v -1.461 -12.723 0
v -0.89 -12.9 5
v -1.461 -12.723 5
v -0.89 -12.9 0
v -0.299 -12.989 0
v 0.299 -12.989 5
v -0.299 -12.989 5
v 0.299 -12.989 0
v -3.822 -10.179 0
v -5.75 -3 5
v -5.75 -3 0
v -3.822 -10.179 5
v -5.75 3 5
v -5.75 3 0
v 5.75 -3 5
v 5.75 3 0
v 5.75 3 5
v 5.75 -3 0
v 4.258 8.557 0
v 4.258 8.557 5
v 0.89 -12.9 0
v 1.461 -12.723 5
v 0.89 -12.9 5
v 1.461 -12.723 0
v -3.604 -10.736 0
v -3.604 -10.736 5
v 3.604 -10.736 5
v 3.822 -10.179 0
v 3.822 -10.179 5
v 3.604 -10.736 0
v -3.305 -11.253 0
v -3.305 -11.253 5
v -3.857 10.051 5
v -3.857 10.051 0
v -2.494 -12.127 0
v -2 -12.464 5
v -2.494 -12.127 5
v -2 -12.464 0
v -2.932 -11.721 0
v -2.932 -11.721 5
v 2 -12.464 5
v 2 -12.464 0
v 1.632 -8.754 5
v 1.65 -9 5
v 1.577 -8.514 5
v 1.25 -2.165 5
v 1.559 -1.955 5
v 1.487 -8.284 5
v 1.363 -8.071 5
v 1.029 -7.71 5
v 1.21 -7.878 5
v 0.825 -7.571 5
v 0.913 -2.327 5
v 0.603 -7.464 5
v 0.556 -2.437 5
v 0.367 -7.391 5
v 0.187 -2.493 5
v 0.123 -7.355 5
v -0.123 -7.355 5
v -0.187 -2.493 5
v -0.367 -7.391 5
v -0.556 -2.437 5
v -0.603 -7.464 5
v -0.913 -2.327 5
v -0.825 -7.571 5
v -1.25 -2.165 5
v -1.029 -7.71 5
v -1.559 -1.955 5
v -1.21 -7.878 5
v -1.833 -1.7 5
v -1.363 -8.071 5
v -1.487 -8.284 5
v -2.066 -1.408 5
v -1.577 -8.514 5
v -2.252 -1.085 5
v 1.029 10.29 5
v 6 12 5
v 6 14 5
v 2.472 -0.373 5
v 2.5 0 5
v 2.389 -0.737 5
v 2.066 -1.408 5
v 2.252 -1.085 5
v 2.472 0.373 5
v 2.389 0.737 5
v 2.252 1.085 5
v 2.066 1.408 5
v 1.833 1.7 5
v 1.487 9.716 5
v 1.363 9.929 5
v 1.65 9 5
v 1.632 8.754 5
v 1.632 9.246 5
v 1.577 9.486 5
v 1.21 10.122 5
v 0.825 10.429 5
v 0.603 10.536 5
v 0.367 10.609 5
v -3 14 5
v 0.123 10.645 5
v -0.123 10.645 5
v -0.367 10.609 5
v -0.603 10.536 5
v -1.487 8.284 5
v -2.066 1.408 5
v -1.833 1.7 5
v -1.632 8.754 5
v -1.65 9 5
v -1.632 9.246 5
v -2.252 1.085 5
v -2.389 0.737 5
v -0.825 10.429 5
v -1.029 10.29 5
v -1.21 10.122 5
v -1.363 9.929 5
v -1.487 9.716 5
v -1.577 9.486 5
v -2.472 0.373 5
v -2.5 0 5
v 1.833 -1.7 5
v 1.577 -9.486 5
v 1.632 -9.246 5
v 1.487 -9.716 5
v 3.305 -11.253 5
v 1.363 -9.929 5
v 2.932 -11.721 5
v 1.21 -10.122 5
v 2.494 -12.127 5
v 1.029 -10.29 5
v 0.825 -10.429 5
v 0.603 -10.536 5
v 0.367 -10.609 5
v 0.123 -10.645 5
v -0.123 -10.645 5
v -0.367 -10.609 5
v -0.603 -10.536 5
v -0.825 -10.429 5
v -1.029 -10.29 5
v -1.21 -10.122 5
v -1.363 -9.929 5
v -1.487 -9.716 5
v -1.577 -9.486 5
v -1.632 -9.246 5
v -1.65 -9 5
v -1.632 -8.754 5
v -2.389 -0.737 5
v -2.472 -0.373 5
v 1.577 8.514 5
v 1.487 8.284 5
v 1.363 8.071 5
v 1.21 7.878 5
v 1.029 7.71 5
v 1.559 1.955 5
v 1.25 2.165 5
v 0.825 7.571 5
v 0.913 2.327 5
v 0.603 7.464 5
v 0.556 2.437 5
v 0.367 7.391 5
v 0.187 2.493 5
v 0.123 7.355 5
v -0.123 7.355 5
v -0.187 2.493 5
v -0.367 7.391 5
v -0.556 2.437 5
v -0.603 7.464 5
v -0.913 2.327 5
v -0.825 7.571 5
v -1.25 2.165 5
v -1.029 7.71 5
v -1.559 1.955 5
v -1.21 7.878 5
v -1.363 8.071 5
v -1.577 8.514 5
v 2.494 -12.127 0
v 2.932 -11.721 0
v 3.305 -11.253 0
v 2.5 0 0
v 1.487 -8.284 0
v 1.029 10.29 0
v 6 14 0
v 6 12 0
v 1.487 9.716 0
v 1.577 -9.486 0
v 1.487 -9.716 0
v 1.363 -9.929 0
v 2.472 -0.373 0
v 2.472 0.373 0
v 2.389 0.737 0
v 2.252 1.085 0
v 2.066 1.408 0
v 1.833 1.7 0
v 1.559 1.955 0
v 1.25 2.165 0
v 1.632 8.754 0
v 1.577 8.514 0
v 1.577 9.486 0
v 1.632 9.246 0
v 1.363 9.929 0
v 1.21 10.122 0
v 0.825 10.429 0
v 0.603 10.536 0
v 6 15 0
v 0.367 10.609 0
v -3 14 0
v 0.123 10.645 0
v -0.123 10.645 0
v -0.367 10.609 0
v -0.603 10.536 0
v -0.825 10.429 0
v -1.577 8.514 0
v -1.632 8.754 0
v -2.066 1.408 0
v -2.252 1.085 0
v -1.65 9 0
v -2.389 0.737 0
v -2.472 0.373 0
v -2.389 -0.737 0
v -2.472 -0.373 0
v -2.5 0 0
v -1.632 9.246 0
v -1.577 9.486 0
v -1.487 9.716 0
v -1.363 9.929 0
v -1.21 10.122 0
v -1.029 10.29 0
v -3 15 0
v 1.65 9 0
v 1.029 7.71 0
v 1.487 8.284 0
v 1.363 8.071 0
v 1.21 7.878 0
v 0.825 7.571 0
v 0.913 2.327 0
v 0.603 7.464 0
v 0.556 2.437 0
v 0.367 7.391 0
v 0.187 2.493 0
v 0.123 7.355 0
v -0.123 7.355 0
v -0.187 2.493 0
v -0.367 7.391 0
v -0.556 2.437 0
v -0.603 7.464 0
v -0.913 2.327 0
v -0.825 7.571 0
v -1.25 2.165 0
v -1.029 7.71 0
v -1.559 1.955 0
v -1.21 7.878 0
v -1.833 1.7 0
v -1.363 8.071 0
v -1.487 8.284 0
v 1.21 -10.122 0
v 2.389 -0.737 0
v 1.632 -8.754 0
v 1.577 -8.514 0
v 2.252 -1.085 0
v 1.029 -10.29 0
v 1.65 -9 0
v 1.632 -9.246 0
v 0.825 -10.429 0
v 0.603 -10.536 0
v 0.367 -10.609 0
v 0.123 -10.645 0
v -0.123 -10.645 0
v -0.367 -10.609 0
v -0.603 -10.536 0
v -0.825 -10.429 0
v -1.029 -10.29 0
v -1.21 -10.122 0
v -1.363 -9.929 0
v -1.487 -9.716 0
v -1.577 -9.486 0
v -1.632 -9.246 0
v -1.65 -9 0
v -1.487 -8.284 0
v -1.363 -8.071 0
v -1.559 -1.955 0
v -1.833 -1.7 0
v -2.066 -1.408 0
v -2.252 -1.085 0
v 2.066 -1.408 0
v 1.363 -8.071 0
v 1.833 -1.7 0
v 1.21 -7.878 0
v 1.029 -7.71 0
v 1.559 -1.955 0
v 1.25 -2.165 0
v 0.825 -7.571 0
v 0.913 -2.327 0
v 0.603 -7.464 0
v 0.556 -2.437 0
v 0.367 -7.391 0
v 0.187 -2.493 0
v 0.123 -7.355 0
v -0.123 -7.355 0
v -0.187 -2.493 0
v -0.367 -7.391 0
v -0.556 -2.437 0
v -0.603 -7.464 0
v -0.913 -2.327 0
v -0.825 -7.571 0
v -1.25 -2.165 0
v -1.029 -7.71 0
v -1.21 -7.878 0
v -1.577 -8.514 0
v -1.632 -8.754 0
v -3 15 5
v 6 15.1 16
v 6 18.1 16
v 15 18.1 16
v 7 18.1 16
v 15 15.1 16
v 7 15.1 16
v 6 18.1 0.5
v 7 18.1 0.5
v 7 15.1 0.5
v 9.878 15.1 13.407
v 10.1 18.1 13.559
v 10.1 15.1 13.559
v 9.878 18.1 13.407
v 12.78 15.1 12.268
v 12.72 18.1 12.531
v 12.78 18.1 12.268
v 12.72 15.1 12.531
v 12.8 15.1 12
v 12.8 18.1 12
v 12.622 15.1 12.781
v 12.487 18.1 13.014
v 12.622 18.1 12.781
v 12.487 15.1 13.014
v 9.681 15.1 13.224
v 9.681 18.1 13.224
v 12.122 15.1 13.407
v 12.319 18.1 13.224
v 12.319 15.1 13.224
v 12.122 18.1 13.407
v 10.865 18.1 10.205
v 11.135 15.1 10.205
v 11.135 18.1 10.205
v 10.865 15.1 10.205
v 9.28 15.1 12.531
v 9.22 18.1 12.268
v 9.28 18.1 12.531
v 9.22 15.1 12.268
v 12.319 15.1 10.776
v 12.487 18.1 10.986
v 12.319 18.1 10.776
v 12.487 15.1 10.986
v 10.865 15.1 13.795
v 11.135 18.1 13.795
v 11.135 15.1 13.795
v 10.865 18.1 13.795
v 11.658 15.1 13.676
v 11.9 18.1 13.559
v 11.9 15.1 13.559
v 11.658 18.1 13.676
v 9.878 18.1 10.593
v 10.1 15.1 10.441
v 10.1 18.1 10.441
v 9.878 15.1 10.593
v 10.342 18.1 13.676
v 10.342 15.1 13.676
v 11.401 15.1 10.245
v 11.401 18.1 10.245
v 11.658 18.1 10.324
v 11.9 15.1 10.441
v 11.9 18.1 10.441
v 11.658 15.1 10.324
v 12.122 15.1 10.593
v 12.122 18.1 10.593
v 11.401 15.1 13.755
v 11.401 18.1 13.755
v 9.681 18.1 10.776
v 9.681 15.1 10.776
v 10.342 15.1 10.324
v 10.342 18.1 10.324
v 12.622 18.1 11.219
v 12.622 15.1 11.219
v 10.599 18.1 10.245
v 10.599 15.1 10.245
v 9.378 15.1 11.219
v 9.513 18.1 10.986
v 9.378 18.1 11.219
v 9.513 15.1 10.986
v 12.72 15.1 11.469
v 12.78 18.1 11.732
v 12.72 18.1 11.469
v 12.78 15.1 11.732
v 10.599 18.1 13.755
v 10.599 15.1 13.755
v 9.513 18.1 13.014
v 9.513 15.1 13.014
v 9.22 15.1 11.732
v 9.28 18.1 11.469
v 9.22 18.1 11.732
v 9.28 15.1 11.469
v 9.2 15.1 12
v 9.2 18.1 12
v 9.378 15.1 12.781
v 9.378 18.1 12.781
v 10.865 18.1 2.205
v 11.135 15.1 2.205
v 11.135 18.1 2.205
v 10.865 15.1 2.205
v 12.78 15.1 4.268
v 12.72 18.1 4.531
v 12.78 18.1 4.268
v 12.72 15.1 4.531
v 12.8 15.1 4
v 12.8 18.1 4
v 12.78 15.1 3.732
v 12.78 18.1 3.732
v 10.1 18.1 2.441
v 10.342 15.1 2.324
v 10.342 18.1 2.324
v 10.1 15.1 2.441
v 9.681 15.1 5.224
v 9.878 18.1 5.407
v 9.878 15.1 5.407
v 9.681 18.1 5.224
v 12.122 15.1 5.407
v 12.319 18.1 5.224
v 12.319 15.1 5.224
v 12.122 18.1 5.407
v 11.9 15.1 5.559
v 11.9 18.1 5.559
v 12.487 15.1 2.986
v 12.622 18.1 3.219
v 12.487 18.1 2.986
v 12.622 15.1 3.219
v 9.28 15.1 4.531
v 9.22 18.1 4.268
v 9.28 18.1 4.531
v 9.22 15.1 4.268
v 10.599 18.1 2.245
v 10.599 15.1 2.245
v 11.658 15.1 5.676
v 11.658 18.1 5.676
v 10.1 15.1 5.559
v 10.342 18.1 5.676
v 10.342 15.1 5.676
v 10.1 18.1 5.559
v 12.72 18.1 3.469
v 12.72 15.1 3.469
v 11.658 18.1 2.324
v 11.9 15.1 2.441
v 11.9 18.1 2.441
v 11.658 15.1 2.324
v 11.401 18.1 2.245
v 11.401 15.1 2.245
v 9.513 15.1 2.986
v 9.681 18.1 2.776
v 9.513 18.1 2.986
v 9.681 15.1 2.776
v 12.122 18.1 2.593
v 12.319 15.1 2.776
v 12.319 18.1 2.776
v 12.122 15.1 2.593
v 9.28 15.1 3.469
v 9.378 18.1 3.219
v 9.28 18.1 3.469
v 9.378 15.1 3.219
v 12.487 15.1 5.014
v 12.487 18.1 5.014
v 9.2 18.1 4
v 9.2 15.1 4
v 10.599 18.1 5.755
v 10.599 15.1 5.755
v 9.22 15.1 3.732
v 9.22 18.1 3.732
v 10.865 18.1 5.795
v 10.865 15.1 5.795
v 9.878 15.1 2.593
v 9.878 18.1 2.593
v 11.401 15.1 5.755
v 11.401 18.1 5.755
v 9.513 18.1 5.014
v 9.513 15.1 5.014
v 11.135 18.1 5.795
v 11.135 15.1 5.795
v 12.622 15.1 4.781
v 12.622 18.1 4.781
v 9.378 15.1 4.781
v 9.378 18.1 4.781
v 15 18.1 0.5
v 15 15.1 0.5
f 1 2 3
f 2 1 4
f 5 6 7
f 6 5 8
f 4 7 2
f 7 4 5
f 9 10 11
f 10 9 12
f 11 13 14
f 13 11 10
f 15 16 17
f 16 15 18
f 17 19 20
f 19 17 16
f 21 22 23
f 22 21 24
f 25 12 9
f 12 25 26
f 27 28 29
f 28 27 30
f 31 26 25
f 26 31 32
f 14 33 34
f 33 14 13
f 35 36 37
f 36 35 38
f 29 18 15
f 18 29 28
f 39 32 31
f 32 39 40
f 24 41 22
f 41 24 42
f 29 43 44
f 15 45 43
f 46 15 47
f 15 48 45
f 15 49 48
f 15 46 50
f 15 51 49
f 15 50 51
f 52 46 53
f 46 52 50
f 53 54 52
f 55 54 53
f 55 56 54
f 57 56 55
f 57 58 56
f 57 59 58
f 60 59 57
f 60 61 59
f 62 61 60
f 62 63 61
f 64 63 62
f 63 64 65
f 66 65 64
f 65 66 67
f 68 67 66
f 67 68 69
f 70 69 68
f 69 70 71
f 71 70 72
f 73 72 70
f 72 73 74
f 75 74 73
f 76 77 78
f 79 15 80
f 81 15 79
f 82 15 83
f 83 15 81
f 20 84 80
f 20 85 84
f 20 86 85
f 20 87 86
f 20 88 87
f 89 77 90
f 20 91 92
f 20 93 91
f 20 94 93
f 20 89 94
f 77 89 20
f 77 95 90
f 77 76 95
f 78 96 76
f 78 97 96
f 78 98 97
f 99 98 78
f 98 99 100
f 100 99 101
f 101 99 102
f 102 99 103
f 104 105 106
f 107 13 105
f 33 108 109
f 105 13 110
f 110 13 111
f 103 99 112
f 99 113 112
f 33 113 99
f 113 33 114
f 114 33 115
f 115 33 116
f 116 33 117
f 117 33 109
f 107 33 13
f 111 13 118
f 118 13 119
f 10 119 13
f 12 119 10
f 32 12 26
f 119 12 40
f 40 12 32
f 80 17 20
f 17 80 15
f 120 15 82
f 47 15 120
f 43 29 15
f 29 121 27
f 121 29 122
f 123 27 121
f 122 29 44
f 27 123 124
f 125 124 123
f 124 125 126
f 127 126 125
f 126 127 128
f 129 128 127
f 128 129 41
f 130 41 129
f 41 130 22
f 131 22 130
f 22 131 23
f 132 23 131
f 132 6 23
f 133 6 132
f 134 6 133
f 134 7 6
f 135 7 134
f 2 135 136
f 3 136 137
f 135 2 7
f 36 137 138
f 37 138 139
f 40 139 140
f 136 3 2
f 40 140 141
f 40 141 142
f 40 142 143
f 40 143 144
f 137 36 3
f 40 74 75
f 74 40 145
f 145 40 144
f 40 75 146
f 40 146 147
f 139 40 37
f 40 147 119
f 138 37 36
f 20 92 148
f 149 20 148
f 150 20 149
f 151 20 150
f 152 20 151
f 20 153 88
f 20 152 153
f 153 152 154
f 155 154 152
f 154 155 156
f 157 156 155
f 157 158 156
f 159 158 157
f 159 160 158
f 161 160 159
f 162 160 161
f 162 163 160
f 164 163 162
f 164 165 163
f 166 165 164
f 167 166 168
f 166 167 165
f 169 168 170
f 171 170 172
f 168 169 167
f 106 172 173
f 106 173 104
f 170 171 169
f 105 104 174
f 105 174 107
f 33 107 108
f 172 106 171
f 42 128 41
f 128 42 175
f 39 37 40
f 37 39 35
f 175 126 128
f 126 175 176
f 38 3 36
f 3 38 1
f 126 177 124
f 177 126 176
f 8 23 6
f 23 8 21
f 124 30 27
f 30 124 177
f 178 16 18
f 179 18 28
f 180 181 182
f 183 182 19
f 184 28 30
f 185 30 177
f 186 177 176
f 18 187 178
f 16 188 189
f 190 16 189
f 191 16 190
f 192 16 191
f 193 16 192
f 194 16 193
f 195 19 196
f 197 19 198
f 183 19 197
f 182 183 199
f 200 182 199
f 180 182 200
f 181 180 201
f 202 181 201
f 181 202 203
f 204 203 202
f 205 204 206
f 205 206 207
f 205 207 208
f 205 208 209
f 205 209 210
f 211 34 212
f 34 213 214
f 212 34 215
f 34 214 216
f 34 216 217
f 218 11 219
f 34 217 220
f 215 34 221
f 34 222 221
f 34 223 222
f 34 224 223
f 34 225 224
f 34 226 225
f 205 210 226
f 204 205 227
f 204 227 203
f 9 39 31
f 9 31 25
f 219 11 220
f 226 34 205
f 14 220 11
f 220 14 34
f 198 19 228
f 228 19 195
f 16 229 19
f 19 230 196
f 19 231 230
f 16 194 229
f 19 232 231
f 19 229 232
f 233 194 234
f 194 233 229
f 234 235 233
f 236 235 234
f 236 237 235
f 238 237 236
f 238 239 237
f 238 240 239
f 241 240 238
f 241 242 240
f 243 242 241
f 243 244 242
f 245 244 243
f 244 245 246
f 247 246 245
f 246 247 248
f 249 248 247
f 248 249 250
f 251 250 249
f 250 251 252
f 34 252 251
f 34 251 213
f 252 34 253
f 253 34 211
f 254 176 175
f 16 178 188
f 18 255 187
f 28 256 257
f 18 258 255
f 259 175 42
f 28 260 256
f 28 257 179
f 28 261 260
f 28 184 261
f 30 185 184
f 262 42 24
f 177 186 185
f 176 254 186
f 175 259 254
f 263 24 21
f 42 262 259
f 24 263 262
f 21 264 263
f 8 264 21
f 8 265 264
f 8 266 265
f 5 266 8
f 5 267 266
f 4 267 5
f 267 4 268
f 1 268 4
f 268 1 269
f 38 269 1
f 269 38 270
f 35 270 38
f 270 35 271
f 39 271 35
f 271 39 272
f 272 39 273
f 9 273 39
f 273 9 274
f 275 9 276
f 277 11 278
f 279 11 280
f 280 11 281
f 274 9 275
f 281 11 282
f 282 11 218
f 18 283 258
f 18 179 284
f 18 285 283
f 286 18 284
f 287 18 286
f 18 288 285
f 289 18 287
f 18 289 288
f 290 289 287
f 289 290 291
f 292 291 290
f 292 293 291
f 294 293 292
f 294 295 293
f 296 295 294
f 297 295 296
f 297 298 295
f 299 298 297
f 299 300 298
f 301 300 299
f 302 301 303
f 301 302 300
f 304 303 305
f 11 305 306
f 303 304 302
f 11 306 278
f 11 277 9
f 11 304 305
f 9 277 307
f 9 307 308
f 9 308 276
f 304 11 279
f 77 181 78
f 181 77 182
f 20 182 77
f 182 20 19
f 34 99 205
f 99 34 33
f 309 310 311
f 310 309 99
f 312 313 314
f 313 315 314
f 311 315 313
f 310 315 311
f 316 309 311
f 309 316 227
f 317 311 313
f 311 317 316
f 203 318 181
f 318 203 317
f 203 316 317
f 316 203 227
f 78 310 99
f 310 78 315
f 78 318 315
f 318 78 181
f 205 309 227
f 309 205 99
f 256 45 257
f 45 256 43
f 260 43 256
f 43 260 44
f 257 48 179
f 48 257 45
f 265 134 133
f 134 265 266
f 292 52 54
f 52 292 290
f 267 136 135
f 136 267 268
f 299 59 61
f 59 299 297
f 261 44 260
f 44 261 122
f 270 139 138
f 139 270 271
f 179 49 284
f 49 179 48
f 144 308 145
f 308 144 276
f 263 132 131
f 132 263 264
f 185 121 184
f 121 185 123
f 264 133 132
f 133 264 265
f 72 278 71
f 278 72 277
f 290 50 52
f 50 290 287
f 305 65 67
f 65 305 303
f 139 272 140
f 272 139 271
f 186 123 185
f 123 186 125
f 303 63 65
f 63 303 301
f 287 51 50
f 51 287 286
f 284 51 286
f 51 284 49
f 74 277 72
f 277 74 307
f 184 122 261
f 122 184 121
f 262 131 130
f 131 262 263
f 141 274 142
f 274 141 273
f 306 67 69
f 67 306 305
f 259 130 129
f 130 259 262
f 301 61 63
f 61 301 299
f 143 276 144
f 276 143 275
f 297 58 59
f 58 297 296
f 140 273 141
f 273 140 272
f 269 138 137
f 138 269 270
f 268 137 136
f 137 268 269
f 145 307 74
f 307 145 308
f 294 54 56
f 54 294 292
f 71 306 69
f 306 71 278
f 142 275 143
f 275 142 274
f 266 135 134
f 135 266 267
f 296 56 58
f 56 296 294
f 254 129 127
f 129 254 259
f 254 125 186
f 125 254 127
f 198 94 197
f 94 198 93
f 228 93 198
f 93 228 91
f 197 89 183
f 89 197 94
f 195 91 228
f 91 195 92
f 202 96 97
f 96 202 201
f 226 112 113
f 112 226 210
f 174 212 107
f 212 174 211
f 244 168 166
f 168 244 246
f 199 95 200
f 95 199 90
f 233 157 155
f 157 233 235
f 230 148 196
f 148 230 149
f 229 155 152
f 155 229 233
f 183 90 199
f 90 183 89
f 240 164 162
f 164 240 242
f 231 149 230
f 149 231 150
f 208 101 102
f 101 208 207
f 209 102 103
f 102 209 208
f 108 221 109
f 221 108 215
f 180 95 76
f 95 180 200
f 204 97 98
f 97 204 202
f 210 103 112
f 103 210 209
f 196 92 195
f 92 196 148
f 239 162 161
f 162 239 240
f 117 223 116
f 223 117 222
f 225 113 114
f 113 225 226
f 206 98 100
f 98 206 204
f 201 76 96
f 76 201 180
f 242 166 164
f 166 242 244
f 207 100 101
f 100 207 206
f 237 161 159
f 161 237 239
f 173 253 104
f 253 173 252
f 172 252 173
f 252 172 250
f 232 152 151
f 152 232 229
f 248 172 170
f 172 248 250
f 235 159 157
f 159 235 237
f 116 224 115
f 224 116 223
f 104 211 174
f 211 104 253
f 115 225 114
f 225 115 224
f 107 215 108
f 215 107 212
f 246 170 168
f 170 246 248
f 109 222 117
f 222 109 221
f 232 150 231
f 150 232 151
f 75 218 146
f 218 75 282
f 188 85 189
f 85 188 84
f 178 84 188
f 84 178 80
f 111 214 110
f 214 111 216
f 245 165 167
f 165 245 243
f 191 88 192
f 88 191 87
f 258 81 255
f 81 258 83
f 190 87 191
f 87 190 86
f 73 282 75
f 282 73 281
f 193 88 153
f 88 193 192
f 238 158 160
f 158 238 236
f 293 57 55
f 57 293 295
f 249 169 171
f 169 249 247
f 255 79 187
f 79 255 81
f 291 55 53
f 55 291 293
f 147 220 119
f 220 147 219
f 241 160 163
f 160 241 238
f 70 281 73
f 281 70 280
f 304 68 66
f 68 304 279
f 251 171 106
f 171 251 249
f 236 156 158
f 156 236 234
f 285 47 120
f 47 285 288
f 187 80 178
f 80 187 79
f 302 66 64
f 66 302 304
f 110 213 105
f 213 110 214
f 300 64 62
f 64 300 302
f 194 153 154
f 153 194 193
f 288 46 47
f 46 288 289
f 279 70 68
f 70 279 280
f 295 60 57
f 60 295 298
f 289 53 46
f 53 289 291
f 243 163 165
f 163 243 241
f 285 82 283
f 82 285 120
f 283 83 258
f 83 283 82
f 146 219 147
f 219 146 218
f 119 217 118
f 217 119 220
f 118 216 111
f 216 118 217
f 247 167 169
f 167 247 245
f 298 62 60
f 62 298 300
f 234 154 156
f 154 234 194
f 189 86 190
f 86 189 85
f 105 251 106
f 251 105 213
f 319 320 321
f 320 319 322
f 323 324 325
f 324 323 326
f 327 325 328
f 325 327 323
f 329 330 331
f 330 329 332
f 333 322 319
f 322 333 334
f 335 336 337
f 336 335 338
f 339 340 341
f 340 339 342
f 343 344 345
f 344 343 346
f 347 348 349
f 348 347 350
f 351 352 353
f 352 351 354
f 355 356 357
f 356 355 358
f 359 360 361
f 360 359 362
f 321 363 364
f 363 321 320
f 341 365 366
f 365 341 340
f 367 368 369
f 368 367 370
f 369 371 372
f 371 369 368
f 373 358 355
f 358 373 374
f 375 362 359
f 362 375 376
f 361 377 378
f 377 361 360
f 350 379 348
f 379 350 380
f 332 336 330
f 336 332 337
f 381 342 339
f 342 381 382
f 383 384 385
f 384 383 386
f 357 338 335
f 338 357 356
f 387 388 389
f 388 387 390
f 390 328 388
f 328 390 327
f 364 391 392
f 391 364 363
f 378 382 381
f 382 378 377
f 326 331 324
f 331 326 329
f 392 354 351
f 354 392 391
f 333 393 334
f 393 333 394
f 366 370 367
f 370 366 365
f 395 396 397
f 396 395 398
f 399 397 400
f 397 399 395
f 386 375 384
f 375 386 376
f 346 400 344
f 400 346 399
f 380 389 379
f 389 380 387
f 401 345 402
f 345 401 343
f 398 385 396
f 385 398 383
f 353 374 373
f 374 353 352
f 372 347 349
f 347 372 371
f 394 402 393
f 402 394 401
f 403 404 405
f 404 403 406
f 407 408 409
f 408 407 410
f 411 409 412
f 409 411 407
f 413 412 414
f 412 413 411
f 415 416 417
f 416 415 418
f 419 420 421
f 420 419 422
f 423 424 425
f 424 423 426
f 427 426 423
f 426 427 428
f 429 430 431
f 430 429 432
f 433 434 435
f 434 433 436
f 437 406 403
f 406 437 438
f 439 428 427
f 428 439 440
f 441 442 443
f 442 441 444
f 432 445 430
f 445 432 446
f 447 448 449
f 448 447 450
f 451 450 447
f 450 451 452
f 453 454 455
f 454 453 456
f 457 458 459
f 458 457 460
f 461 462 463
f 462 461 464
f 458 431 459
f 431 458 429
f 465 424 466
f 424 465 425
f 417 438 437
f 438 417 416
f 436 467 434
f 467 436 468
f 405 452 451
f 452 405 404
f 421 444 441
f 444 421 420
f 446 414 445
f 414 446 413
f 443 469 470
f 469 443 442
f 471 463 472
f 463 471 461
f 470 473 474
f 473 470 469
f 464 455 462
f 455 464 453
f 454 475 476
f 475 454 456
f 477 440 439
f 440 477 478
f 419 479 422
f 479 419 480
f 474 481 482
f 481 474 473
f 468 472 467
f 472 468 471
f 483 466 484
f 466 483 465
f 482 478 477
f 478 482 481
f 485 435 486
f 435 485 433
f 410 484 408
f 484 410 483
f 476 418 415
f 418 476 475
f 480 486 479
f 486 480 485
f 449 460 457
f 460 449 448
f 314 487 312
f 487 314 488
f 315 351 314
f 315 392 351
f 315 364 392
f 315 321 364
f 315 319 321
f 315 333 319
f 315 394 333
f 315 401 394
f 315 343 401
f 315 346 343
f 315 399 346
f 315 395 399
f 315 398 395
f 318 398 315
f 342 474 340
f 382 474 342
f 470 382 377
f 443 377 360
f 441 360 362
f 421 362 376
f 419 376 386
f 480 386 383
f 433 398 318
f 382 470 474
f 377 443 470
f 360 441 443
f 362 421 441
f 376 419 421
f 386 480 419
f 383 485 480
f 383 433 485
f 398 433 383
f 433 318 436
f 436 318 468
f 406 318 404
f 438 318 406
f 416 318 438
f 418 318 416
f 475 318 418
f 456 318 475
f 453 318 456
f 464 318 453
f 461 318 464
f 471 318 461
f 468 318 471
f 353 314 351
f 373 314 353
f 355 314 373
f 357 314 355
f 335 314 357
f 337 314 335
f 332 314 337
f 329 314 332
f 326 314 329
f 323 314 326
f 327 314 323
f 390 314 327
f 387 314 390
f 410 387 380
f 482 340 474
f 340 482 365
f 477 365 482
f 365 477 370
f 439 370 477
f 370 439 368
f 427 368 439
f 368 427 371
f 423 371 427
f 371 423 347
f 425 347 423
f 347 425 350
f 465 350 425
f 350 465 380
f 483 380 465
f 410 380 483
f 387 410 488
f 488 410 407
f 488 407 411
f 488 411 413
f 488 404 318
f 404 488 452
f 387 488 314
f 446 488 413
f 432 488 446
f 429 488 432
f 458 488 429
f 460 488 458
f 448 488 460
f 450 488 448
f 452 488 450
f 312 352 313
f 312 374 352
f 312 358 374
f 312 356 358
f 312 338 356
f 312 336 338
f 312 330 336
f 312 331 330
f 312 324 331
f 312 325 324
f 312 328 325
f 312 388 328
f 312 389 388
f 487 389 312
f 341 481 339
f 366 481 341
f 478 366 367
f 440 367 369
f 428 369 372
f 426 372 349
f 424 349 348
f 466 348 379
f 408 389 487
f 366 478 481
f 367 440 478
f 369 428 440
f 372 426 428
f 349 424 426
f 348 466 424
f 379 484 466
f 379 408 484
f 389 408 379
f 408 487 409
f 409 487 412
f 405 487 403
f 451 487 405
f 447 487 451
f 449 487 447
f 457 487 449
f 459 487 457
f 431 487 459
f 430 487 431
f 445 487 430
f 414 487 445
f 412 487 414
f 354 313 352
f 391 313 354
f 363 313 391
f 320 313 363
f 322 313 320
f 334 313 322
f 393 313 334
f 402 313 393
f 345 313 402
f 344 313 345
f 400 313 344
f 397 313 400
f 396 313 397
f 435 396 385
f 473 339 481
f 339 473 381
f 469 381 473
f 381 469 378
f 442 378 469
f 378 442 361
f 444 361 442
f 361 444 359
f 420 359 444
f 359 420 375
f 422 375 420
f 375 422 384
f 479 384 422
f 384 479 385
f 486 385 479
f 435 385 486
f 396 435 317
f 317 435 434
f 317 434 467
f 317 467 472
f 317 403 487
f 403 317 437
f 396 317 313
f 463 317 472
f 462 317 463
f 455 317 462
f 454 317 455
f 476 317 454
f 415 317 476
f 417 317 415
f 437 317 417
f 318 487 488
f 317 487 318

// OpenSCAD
$fn = 42;

w = 3.0;
mount_dia = 3.6;

z_offset_from_original = 2.0;

module carriage_mount() {
    //import("/home/thomas/3D Printing/core-xz-anet-am8-conversion-model_files/X-carriege/bl_touch_mount.stl");
    
    difference() {
        translate([-4, -11.5, 0])
        cube([8, 15.5, w]);
        
        for (y = [0, 8])
        translate([0, -y, -1])
        cylinder(d = mount_dia, h = w + 2);
    }
}

module probe_mount() {
    //%translate([11, 18.1, 14])
    //rotate([90, 0, 0])
    //import("/home/thomas/3D Printing/core-xz-anet-am8-conversion-model_files/X-carriege/bl_touch_mount.stl");
    
    difference() {
        union() {
            hull() {
                translate([-5.75, -3, 0])
                cube([11.5, 6, 5]);
                
                for (y = [-1, 1])
                translate([0, 9 * y, 0])
                cylinder(d = 8, h = 5);
            }
        
            hull() {
                translate([0, 9, 0])
                cylinder(d = 8, h = 5);
                
                translate([-3, 12, 0])
                cube([9, 2, 5]);
            }
        
            hull() {
                translate([-3, 14, 0])
                cube([9, 1, 5]);
                
                translate([6, 15.1, 0.5])
                cube([1, 3, 15.5]);
            }
        }
        
        translate([0, 0, -1])
        cylinder(d = 5.0, h = 5.0 + 2);
        
        for (y = [-1, 1])
        translate([0, 9.0 * y, -1])
        cylinder(d = 3.3, h = 5.0 + 2);
    }
}

module mount() {
    probe_mount();
    
    translate([11, 18.1, 14 - z_offset_from_original])
    rotate([90, 0, 0])
    carriage_mount();
}

mount();
